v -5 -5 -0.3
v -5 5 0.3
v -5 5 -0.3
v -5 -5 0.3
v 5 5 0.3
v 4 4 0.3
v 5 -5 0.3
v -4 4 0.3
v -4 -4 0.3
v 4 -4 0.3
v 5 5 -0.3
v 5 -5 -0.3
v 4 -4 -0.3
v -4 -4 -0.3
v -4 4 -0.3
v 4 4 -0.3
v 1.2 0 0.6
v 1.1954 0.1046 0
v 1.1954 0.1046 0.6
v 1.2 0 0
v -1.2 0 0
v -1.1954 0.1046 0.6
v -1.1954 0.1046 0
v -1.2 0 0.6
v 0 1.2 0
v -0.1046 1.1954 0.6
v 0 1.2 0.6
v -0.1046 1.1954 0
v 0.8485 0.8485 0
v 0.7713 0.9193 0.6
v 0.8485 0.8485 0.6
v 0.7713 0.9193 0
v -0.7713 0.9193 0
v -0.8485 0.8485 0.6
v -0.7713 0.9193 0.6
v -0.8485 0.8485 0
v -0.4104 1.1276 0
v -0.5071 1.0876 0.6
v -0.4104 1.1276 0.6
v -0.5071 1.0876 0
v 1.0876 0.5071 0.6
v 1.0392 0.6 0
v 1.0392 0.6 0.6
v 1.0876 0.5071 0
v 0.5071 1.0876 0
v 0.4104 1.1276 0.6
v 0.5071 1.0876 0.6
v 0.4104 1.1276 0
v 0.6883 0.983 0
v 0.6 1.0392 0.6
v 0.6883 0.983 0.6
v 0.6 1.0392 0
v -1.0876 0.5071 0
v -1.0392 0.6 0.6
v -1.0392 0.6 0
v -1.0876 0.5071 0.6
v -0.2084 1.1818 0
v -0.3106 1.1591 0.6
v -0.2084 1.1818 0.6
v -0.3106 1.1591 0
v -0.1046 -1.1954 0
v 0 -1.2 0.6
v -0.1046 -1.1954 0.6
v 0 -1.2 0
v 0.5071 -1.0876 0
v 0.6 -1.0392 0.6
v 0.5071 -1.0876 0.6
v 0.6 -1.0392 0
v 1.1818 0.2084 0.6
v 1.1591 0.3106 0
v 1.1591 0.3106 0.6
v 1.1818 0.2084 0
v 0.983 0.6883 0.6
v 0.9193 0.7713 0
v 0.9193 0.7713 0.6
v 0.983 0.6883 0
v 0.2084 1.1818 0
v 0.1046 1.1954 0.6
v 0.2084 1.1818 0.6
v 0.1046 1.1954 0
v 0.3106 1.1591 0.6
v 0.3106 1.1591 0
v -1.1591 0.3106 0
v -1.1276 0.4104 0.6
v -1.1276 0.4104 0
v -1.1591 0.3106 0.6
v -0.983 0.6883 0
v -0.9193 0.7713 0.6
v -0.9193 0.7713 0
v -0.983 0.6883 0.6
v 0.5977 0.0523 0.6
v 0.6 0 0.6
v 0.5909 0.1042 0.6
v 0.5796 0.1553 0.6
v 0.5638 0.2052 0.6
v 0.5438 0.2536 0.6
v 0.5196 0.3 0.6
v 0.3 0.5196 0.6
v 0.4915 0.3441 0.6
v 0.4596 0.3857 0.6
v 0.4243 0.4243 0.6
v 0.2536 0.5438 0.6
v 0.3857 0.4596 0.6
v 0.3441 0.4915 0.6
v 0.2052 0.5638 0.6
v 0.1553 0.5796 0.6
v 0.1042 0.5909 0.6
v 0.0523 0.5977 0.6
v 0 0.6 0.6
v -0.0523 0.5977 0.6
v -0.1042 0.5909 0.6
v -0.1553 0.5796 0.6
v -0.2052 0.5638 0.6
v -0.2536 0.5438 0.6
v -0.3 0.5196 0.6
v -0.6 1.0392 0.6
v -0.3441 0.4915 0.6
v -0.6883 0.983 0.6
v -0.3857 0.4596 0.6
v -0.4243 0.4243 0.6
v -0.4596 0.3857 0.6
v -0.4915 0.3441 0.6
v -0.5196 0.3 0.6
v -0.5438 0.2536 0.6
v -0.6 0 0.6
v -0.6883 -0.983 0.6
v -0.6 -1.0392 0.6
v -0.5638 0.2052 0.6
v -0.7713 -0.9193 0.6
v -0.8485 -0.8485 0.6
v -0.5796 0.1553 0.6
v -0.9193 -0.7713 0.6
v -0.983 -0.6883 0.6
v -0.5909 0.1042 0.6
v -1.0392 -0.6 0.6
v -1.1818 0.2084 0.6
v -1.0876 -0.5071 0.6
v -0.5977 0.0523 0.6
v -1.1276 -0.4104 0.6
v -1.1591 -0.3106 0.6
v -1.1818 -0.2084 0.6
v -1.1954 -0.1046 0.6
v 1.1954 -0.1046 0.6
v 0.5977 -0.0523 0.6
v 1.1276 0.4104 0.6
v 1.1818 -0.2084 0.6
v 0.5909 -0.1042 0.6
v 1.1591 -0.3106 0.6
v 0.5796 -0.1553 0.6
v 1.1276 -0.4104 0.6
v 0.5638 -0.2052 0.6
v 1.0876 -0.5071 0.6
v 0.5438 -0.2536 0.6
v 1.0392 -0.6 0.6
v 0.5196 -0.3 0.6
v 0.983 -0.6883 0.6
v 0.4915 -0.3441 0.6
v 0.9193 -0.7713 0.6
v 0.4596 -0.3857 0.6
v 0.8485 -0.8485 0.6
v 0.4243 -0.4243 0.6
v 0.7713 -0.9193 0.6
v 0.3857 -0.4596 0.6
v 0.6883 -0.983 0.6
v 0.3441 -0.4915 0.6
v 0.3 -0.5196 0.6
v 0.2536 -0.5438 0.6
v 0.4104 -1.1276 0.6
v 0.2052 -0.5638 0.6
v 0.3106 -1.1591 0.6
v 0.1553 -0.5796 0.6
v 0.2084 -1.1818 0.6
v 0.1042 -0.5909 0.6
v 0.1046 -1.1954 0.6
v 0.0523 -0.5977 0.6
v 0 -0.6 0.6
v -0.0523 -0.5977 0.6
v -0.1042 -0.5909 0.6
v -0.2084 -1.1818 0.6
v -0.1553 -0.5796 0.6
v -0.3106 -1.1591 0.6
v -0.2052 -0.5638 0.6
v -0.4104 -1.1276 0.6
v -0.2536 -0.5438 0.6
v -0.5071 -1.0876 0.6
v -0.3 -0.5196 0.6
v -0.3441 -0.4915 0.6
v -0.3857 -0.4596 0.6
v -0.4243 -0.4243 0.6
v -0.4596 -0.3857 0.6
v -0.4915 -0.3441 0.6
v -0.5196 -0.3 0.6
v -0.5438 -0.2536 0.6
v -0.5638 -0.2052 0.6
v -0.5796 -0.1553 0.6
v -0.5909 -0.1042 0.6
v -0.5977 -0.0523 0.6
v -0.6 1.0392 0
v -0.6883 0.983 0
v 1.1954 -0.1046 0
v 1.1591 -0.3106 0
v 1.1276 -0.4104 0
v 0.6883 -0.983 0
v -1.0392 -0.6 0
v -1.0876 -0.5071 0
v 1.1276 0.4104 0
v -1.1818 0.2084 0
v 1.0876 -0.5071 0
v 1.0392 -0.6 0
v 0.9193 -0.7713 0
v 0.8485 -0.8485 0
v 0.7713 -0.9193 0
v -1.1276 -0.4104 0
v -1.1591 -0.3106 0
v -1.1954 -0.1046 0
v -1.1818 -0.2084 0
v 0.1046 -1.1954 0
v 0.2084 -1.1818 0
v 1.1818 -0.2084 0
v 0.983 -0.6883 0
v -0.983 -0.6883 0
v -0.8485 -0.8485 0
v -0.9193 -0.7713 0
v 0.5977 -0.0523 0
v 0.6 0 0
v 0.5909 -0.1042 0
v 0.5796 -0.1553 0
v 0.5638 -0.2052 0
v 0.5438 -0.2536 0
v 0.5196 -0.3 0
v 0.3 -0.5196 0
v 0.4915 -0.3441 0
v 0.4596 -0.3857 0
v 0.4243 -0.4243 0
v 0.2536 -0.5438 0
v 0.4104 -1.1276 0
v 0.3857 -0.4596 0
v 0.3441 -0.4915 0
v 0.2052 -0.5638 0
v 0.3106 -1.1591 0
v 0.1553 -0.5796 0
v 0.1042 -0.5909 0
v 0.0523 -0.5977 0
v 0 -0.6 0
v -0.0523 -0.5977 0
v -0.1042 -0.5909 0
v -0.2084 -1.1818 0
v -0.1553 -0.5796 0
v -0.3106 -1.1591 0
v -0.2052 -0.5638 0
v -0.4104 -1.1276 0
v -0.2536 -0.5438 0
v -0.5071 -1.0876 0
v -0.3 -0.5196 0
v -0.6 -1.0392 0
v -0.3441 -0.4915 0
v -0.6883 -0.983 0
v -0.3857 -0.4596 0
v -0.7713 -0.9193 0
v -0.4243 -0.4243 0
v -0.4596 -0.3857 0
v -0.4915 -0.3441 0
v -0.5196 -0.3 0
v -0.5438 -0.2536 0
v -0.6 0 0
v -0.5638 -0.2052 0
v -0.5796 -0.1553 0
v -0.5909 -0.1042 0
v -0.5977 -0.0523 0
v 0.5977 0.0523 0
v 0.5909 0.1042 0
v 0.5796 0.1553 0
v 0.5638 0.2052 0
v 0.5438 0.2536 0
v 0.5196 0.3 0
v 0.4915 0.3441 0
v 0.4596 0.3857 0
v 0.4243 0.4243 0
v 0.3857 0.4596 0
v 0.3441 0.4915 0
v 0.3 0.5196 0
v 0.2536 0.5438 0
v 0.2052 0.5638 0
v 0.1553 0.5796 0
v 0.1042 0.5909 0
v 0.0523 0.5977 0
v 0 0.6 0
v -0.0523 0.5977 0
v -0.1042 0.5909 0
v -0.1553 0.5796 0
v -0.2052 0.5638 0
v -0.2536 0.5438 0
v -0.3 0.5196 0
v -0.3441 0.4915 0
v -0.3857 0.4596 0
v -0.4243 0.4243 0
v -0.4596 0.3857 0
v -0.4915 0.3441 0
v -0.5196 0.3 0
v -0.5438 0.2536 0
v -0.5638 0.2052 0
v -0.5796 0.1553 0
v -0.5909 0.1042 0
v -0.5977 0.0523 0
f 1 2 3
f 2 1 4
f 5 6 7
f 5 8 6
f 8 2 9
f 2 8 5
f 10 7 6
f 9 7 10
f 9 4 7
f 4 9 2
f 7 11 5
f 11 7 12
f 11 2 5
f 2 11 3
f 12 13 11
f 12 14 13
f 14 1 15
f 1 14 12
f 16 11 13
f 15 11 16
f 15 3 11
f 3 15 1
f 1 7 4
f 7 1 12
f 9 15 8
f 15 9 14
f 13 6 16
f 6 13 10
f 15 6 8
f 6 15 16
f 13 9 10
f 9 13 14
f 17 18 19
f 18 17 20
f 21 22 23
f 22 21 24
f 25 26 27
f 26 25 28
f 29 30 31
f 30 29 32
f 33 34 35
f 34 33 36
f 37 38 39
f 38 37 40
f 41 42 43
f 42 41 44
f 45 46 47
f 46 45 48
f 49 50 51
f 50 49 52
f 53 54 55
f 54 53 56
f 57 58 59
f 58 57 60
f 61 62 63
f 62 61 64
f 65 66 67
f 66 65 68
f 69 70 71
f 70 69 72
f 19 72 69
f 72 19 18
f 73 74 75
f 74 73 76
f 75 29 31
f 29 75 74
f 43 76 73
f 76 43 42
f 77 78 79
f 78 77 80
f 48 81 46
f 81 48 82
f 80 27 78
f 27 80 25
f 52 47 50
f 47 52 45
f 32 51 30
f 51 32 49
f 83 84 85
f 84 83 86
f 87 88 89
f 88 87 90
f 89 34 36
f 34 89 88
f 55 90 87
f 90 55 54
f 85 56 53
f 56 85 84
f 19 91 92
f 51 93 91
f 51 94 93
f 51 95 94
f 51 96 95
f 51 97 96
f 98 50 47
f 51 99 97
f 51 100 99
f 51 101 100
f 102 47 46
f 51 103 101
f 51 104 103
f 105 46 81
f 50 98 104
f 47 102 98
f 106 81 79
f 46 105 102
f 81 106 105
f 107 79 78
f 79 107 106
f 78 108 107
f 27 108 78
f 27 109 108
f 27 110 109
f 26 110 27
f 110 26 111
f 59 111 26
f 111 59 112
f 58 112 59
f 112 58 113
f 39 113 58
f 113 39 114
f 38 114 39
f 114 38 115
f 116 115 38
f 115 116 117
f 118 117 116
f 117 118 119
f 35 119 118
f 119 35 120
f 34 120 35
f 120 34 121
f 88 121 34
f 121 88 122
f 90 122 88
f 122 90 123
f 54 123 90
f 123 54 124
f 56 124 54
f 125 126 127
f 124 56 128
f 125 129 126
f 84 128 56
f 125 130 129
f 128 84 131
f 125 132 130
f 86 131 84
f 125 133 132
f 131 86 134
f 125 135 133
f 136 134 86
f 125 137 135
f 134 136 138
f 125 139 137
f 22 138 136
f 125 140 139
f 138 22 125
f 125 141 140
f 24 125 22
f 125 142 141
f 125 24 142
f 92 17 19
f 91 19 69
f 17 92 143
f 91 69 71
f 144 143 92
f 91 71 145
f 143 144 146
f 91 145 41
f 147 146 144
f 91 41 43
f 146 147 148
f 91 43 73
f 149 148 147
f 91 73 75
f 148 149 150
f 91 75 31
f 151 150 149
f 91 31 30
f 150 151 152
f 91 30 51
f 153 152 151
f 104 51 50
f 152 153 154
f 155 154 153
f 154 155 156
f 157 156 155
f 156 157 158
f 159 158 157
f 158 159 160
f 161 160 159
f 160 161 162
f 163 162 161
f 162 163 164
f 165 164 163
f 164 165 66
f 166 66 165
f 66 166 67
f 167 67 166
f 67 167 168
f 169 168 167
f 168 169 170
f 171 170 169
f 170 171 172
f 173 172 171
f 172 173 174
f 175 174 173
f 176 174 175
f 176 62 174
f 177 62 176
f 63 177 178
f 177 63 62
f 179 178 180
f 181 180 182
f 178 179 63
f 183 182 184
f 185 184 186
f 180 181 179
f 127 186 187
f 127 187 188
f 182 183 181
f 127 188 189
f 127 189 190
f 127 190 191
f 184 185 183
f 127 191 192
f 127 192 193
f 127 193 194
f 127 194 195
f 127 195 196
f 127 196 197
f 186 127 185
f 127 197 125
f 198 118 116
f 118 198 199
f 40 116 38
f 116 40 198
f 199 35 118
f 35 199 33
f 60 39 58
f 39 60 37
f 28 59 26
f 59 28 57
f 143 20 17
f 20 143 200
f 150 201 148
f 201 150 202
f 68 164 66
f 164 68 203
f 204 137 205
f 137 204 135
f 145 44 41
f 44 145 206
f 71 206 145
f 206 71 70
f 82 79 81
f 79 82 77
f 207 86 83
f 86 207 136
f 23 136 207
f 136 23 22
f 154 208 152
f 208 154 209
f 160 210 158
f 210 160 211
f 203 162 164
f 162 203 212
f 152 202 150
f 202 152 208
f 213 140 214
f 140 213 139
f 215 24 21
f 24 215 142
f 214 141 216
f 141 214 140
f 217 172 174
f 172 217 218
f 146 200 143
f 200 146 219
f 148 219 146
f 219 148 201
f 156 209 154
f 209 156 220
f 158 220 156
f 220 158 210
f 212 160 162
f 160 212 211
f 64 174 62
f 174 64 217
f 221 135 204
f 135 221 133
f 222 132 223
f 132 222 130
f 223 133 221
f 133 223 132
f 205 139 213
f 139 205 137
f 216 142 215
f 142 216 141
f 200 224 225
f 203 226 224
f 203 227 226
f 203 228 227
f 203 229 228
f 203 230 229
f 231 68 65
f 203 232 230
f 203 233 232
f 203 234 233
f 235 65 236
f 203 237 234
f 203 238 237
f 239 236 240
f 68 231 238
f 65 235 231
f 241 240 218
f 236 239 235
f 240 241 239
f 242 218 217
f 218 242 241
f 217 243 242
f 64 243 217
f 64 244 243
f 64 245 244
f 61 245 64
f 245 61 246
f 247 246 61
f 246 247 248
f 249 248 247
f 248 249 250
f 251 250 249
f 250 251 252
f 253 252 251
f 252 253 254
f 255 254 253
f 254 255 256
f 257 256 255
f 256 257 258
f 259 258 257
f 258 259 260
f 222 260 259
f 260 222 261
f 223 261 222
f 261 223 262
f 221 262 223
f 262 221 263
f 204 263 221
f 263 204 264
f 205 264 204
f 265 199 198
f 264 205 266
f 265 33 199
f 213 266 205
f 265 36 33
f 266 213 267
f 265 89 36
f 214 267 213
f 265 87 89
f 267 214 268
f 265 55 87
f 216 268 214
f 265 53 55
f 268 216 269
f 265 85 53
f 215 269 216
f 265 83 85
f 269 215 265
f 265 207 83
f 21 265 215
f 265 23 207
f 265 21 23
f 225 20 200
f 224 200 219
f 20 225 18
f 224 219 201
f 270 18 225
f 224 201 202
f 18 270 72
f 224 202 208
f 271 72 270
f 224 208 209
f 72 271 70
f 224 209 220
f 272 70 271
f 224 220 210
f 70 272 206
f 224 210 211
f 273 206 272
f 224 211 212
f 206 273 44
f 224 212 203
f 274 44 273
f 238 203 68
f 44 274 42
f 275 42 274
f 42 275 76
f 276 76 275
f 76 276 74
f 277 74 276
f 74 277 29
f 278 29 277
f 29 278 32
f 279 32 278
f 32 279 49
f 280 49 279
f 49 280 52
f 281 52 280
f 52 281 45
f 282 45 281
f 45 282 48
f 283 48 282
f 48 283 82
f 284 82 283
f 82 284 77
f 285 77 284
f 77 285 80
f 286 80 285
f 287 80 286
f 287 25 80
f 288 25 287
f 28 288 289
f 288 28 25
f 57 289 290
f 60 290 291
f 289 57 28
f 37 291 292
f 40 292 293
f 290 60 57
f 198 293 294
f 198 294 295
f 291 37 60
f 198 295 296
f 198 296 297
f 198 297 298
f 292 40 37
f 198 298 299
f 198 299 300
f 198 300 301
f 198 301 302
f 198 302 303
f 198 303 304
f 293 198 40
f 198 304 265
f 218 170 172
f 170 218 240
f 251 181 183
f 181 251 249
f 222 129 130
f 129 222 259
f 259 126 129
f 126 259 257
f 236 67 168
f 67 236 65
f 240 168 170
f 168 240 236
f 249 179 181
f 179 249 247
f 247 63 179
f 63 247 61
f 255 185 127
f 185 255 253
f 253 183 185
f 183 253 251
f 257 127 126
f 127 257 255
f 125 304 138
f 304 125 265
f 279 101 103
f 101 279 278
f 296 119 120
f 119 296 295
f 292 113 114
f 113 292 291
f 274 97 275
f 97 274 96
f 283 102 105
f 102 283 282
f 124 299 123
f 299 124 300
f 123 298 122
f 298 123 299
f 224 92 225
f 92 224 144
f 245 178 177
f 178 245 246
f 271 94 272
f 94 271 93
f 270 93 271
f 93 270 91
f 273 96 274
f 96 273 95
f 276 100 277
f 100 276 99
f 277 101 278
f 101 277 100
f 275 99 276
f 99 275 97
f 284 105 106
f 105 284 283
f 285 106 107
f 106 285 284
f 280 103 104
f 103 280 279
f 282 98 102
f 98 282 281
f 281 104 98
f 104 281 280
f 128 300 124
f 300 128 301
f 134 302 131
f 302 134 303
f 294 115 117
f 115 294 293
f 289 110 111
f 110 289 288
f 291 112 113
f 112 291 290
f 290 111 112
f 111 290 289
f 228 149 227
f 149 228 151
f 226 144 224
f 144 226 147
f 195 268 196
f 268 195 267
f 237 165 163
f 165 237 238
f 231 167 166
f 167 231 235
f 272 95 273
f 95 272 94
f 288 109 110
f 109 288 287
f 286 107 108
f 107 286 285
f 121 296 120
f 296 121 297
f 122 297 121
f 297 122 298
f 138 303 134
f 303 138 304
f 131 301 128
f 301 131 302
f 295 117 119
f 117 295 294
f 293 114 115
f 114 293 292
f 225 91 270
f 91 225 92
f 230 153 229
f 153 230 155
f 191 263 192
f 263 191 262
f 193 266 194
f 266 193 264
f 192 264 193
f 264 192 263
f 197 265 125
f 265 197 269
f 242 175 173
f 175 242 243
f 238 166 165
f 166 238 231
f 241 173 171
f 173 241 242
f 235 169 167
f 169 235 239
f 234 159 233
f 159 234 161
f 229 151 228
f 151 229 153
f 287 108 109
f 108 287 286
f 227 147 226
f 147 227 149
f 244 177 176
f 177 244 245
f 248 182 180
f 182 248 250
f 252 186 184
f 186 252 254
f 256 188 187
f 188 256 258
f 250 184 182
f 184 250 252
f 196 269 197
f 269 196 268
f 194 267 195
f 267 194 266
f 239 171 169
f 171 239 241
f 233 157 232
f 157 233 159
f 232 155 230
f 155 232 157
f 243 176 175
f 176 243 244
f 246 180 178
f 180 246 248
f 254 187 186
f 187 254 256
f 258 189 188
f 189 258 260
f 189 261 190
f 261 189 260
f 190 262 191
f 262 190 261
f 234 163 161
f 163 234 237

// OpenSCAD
// -*- mode: SCAD ; c-file-style: "ellemtel" ; coding: utf-8 -*-
//
// Quick square for calibration
//
// © 2017 Roland Sieker <ospalh@gmail.com>
// Licence: CC-BY-SA 4.0


difference()
{
    cube([10,10,0.6], center=true);
    cube([8,8,0.601],center=true);
}
$fn=72;
difference()
{
    cylinder(r=1.2, h=0.6);
    translate([0, 0, -0.0005])
    {
        cylinder(r=0.6, h=0.601);
    }
}
